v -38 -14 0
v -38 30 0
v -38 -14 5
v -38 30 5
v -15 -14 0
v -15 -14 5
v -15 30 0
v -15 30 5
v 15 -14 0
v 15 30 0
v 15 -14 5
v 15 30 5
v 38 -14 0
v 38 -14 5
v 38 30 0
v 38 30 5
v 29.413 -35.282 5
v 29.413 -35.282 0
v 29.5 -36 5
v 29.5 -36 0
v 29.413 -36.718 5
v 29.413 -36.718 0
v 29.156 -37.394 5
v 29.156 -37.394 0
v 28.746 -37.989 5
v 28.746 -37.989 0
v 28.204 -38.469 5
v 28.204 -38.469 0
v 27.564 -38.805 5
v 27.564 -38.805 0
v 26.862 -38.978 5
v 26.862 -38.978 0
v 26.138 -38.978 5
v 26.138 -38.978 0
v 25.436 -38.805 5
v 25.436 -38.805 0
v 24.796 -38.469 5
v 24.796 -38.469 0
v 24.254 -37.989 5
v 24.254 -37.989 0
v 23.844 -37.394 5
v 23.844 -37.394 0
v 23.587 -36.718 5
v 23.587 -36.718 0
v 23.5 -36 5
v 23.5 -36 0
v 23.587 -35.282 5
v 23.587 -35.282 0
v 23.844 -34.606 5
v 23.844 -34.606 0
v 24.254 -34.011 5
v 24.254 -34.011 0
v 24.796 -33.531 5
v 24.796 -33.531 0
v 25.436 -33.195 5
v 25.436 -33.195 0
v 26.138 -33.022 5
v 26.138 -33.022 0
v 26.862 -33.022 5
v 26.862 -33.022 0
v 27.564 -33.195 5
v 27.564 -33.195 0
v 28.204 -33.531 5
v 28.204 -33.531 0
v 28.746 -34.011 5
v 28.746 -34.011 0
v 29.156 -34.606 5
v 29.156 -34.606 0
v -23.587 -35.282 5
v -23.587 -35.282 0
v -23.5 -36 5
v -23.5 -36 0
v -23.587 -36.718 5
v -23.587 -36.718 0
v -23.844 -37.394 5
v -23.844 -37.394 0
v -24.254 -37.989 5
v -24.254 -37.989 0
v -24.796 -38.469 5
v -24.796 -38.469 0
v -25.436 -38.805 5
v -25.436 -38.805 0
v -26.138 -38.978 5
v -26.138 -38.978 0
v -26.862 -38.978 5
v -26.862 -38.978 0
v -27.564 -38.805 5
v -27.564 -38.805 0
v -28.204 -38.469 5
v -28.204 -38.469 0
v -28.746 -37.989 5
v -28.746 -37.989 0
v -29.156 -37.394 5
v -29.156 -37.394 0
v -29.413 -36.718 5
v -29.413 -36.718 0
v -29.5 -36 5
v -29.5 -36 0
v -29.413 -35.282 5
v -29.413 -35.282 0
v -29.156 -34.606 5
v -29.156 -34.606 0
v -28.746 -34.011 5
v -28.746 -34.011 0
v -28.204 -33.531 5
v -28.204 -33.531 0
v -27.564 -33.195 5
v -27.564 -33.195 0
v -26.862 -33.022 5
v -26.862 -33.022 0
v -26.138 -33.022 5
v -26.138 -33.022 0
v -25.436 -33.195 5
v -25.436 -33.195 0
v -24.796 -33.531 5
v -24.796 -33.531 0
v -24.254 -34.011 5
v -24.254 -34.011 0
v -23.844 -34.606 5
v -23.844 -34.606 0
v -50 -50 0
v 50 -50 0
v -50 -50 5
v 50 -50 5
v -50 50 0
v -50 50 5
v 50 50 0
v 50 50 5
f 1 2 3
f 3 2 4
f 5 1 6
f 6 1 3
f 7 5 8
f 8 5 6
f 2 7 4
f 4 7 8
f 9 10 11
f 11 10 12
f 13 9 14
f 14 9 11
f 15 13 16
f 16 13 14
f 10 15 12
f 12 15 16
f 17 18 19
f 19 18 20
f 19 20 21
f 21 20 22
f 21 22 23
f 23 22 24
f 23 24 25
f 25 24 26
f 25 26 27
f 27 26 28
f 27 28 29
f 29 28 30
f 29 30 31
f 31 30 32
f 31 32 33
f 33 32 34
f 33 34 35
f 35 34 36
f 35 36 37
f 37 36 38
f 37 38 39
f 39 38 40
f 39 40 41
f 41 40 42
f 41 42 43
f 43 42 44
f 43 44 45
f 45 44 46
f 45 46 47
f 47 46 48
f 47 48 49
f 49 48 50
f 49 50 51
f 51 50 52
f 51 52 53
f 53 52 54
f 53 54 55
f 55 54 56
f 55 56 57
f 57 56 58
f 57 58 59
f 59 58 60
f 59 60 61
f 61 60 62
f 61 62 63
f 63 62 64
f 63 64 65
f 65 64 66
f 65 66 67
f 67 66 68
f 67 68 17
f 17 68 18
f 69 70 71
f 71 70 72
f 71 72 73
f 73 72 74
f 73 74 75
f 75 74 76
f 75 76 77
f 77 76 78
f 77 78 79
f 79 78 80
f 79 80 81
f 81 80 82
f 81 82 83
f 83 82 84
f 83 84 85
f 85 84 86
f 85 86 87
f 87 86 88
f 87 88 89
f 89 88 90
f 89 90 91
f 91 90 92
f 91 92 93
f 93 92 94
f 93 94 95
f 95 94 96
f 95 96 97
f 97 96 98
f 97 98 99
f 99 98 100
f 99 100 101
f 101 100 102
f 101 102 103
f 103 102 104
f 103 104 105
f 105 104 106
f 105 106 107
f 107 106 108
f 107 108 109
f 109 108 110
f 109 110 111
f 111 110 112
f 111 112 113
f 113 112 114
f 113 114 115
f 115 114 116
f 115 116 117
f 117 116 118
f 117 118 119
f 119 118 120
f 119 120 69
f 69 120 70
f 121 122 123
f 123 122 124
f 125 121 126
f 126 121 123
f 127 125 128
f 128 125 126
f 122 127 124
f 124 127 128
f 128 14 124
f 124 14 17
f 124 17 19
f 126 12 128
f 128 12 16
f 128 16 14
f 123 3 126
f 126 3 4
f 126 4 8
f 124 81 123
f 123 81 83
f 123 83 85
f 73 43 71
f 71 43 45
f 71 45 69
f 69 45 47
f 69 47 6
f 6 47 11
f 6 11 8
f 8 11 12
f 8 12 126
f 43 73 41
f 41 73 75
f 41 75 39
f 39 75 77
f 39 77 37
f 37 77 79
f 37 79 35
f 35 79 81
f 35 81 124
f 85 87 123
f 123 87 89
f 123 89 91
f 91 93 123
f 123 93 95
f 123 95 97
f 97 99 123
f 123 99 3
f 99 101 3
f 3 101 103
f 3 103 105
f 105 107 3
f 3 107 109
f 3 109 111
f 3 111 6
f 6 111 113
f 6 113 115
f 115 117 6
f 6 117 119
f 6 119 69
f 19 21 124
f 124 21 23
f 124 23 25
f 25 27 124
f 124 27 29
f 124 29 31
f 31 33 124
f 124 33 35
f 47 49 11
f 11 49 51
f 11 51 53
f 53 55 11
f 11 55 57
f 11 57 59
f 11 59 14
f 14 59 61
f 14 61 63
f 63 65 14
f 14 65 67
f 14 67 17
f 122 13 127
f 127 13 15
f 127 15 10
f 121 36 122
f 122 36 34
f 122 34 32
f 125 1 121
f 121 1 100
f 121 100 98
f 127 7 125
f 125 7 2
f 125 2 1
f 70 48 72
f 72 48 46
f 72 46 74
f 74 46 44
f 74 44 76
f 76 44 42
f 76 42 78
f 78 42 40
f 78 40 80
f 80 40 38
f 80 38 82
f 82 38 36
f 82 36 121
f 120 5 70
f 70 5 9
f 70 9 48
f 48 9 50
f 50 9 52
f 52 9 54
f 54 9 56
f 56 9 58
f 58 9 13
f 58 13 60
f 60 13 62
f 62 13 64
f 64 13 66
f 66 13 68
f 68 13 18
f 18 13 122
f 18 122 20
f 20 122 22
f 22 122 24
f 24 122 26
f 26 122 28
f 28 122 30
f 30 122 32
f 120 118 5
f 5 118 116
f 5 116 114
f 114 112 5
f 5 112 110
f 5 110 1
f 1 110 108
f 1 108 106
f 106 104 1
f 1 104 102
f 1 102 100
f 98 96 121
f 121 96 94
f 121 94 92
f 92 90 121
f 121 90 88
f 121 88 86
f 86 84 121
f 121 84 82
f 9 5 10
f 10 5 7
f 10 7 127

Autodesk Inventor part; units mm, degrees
ref_plane "YZ Plane" through (0, 0, 0) normal (1, 0, 0) x (0, 1, 0)
ref_plane "XZ Plane" through (0, 0, 0) normal (0, 1, 0) x (-1, 0, 0)
ref_plane "XY Plane" through (0, 0, 0) normal (0, 0, 1) x (1, 0, 0)
sketch "Esquisse1" plane through (0, 0, 0) normal (0, 0, 1) x (1, 0, 0)
  line L0 (-50, -50) -> (50, -50)
  line L1 (50, -50) -> (50, 50)
  line L2 (50, 50) -> (-50, 50)
  line L3 (-50, 50) -> (-50, -50)
  line L4 (-50, -50) -> (50, 50) construction
  line L5 (50, -50) -> (-50, 50) construction
  line L6 (-38, 30) -> (-15, 30)
  line L7 (-15, 30) -> (-15, -14)
  line L8 (-15, -14) -> (-38, -14)
  line L9 (-38, -14) -> (-38, 30)
  line L10 (-38, 30) -> (-15, -14) construction
  line L11 (-15, 30) -> (-38, -14) construction
  line L12 (15, 30) -> (38, 30)
  line L13 (38, 30) -> (38, -14)
  line L14 (38, -14) -> (15, -14)
  line L15 (15, -14) -> (15, 30)
  line L16 (15, 30) -> (38, -14) construction
  line L17 (38, 30) -> (15, -14) construction
  circle A0 centre (-26.5, -36) radius 3
  circle A1 centre (26.5, -36) radius 3
  point P0 (0, 0)
  point P1 (-26.5, 8)
  point P2 (26.5, 8)
  point P3 (0, -50)
  dimension "d0" = 100
  dimension "d1" = 100
  dimension "d2" = 23
  dimension "d3" = 44
  dimension "d4" = 23
  dimension "d5" = 44
  dimension "d6" = 6
  dimension "d7" = 6
  dimension "d8" = 53
  dimension "d9" = 0
  dimension "d10" = 14
  dimension "d13" = 0
  dimension "d14" = 0
  dimension "d15" = 26.5
  dimension "d16" = 80
  dimension "d17" = 0
extrude "Extrusion1" add sketch "Esquisse1" along normal blind 5
properties part number "support_servo_Impression 3D"
